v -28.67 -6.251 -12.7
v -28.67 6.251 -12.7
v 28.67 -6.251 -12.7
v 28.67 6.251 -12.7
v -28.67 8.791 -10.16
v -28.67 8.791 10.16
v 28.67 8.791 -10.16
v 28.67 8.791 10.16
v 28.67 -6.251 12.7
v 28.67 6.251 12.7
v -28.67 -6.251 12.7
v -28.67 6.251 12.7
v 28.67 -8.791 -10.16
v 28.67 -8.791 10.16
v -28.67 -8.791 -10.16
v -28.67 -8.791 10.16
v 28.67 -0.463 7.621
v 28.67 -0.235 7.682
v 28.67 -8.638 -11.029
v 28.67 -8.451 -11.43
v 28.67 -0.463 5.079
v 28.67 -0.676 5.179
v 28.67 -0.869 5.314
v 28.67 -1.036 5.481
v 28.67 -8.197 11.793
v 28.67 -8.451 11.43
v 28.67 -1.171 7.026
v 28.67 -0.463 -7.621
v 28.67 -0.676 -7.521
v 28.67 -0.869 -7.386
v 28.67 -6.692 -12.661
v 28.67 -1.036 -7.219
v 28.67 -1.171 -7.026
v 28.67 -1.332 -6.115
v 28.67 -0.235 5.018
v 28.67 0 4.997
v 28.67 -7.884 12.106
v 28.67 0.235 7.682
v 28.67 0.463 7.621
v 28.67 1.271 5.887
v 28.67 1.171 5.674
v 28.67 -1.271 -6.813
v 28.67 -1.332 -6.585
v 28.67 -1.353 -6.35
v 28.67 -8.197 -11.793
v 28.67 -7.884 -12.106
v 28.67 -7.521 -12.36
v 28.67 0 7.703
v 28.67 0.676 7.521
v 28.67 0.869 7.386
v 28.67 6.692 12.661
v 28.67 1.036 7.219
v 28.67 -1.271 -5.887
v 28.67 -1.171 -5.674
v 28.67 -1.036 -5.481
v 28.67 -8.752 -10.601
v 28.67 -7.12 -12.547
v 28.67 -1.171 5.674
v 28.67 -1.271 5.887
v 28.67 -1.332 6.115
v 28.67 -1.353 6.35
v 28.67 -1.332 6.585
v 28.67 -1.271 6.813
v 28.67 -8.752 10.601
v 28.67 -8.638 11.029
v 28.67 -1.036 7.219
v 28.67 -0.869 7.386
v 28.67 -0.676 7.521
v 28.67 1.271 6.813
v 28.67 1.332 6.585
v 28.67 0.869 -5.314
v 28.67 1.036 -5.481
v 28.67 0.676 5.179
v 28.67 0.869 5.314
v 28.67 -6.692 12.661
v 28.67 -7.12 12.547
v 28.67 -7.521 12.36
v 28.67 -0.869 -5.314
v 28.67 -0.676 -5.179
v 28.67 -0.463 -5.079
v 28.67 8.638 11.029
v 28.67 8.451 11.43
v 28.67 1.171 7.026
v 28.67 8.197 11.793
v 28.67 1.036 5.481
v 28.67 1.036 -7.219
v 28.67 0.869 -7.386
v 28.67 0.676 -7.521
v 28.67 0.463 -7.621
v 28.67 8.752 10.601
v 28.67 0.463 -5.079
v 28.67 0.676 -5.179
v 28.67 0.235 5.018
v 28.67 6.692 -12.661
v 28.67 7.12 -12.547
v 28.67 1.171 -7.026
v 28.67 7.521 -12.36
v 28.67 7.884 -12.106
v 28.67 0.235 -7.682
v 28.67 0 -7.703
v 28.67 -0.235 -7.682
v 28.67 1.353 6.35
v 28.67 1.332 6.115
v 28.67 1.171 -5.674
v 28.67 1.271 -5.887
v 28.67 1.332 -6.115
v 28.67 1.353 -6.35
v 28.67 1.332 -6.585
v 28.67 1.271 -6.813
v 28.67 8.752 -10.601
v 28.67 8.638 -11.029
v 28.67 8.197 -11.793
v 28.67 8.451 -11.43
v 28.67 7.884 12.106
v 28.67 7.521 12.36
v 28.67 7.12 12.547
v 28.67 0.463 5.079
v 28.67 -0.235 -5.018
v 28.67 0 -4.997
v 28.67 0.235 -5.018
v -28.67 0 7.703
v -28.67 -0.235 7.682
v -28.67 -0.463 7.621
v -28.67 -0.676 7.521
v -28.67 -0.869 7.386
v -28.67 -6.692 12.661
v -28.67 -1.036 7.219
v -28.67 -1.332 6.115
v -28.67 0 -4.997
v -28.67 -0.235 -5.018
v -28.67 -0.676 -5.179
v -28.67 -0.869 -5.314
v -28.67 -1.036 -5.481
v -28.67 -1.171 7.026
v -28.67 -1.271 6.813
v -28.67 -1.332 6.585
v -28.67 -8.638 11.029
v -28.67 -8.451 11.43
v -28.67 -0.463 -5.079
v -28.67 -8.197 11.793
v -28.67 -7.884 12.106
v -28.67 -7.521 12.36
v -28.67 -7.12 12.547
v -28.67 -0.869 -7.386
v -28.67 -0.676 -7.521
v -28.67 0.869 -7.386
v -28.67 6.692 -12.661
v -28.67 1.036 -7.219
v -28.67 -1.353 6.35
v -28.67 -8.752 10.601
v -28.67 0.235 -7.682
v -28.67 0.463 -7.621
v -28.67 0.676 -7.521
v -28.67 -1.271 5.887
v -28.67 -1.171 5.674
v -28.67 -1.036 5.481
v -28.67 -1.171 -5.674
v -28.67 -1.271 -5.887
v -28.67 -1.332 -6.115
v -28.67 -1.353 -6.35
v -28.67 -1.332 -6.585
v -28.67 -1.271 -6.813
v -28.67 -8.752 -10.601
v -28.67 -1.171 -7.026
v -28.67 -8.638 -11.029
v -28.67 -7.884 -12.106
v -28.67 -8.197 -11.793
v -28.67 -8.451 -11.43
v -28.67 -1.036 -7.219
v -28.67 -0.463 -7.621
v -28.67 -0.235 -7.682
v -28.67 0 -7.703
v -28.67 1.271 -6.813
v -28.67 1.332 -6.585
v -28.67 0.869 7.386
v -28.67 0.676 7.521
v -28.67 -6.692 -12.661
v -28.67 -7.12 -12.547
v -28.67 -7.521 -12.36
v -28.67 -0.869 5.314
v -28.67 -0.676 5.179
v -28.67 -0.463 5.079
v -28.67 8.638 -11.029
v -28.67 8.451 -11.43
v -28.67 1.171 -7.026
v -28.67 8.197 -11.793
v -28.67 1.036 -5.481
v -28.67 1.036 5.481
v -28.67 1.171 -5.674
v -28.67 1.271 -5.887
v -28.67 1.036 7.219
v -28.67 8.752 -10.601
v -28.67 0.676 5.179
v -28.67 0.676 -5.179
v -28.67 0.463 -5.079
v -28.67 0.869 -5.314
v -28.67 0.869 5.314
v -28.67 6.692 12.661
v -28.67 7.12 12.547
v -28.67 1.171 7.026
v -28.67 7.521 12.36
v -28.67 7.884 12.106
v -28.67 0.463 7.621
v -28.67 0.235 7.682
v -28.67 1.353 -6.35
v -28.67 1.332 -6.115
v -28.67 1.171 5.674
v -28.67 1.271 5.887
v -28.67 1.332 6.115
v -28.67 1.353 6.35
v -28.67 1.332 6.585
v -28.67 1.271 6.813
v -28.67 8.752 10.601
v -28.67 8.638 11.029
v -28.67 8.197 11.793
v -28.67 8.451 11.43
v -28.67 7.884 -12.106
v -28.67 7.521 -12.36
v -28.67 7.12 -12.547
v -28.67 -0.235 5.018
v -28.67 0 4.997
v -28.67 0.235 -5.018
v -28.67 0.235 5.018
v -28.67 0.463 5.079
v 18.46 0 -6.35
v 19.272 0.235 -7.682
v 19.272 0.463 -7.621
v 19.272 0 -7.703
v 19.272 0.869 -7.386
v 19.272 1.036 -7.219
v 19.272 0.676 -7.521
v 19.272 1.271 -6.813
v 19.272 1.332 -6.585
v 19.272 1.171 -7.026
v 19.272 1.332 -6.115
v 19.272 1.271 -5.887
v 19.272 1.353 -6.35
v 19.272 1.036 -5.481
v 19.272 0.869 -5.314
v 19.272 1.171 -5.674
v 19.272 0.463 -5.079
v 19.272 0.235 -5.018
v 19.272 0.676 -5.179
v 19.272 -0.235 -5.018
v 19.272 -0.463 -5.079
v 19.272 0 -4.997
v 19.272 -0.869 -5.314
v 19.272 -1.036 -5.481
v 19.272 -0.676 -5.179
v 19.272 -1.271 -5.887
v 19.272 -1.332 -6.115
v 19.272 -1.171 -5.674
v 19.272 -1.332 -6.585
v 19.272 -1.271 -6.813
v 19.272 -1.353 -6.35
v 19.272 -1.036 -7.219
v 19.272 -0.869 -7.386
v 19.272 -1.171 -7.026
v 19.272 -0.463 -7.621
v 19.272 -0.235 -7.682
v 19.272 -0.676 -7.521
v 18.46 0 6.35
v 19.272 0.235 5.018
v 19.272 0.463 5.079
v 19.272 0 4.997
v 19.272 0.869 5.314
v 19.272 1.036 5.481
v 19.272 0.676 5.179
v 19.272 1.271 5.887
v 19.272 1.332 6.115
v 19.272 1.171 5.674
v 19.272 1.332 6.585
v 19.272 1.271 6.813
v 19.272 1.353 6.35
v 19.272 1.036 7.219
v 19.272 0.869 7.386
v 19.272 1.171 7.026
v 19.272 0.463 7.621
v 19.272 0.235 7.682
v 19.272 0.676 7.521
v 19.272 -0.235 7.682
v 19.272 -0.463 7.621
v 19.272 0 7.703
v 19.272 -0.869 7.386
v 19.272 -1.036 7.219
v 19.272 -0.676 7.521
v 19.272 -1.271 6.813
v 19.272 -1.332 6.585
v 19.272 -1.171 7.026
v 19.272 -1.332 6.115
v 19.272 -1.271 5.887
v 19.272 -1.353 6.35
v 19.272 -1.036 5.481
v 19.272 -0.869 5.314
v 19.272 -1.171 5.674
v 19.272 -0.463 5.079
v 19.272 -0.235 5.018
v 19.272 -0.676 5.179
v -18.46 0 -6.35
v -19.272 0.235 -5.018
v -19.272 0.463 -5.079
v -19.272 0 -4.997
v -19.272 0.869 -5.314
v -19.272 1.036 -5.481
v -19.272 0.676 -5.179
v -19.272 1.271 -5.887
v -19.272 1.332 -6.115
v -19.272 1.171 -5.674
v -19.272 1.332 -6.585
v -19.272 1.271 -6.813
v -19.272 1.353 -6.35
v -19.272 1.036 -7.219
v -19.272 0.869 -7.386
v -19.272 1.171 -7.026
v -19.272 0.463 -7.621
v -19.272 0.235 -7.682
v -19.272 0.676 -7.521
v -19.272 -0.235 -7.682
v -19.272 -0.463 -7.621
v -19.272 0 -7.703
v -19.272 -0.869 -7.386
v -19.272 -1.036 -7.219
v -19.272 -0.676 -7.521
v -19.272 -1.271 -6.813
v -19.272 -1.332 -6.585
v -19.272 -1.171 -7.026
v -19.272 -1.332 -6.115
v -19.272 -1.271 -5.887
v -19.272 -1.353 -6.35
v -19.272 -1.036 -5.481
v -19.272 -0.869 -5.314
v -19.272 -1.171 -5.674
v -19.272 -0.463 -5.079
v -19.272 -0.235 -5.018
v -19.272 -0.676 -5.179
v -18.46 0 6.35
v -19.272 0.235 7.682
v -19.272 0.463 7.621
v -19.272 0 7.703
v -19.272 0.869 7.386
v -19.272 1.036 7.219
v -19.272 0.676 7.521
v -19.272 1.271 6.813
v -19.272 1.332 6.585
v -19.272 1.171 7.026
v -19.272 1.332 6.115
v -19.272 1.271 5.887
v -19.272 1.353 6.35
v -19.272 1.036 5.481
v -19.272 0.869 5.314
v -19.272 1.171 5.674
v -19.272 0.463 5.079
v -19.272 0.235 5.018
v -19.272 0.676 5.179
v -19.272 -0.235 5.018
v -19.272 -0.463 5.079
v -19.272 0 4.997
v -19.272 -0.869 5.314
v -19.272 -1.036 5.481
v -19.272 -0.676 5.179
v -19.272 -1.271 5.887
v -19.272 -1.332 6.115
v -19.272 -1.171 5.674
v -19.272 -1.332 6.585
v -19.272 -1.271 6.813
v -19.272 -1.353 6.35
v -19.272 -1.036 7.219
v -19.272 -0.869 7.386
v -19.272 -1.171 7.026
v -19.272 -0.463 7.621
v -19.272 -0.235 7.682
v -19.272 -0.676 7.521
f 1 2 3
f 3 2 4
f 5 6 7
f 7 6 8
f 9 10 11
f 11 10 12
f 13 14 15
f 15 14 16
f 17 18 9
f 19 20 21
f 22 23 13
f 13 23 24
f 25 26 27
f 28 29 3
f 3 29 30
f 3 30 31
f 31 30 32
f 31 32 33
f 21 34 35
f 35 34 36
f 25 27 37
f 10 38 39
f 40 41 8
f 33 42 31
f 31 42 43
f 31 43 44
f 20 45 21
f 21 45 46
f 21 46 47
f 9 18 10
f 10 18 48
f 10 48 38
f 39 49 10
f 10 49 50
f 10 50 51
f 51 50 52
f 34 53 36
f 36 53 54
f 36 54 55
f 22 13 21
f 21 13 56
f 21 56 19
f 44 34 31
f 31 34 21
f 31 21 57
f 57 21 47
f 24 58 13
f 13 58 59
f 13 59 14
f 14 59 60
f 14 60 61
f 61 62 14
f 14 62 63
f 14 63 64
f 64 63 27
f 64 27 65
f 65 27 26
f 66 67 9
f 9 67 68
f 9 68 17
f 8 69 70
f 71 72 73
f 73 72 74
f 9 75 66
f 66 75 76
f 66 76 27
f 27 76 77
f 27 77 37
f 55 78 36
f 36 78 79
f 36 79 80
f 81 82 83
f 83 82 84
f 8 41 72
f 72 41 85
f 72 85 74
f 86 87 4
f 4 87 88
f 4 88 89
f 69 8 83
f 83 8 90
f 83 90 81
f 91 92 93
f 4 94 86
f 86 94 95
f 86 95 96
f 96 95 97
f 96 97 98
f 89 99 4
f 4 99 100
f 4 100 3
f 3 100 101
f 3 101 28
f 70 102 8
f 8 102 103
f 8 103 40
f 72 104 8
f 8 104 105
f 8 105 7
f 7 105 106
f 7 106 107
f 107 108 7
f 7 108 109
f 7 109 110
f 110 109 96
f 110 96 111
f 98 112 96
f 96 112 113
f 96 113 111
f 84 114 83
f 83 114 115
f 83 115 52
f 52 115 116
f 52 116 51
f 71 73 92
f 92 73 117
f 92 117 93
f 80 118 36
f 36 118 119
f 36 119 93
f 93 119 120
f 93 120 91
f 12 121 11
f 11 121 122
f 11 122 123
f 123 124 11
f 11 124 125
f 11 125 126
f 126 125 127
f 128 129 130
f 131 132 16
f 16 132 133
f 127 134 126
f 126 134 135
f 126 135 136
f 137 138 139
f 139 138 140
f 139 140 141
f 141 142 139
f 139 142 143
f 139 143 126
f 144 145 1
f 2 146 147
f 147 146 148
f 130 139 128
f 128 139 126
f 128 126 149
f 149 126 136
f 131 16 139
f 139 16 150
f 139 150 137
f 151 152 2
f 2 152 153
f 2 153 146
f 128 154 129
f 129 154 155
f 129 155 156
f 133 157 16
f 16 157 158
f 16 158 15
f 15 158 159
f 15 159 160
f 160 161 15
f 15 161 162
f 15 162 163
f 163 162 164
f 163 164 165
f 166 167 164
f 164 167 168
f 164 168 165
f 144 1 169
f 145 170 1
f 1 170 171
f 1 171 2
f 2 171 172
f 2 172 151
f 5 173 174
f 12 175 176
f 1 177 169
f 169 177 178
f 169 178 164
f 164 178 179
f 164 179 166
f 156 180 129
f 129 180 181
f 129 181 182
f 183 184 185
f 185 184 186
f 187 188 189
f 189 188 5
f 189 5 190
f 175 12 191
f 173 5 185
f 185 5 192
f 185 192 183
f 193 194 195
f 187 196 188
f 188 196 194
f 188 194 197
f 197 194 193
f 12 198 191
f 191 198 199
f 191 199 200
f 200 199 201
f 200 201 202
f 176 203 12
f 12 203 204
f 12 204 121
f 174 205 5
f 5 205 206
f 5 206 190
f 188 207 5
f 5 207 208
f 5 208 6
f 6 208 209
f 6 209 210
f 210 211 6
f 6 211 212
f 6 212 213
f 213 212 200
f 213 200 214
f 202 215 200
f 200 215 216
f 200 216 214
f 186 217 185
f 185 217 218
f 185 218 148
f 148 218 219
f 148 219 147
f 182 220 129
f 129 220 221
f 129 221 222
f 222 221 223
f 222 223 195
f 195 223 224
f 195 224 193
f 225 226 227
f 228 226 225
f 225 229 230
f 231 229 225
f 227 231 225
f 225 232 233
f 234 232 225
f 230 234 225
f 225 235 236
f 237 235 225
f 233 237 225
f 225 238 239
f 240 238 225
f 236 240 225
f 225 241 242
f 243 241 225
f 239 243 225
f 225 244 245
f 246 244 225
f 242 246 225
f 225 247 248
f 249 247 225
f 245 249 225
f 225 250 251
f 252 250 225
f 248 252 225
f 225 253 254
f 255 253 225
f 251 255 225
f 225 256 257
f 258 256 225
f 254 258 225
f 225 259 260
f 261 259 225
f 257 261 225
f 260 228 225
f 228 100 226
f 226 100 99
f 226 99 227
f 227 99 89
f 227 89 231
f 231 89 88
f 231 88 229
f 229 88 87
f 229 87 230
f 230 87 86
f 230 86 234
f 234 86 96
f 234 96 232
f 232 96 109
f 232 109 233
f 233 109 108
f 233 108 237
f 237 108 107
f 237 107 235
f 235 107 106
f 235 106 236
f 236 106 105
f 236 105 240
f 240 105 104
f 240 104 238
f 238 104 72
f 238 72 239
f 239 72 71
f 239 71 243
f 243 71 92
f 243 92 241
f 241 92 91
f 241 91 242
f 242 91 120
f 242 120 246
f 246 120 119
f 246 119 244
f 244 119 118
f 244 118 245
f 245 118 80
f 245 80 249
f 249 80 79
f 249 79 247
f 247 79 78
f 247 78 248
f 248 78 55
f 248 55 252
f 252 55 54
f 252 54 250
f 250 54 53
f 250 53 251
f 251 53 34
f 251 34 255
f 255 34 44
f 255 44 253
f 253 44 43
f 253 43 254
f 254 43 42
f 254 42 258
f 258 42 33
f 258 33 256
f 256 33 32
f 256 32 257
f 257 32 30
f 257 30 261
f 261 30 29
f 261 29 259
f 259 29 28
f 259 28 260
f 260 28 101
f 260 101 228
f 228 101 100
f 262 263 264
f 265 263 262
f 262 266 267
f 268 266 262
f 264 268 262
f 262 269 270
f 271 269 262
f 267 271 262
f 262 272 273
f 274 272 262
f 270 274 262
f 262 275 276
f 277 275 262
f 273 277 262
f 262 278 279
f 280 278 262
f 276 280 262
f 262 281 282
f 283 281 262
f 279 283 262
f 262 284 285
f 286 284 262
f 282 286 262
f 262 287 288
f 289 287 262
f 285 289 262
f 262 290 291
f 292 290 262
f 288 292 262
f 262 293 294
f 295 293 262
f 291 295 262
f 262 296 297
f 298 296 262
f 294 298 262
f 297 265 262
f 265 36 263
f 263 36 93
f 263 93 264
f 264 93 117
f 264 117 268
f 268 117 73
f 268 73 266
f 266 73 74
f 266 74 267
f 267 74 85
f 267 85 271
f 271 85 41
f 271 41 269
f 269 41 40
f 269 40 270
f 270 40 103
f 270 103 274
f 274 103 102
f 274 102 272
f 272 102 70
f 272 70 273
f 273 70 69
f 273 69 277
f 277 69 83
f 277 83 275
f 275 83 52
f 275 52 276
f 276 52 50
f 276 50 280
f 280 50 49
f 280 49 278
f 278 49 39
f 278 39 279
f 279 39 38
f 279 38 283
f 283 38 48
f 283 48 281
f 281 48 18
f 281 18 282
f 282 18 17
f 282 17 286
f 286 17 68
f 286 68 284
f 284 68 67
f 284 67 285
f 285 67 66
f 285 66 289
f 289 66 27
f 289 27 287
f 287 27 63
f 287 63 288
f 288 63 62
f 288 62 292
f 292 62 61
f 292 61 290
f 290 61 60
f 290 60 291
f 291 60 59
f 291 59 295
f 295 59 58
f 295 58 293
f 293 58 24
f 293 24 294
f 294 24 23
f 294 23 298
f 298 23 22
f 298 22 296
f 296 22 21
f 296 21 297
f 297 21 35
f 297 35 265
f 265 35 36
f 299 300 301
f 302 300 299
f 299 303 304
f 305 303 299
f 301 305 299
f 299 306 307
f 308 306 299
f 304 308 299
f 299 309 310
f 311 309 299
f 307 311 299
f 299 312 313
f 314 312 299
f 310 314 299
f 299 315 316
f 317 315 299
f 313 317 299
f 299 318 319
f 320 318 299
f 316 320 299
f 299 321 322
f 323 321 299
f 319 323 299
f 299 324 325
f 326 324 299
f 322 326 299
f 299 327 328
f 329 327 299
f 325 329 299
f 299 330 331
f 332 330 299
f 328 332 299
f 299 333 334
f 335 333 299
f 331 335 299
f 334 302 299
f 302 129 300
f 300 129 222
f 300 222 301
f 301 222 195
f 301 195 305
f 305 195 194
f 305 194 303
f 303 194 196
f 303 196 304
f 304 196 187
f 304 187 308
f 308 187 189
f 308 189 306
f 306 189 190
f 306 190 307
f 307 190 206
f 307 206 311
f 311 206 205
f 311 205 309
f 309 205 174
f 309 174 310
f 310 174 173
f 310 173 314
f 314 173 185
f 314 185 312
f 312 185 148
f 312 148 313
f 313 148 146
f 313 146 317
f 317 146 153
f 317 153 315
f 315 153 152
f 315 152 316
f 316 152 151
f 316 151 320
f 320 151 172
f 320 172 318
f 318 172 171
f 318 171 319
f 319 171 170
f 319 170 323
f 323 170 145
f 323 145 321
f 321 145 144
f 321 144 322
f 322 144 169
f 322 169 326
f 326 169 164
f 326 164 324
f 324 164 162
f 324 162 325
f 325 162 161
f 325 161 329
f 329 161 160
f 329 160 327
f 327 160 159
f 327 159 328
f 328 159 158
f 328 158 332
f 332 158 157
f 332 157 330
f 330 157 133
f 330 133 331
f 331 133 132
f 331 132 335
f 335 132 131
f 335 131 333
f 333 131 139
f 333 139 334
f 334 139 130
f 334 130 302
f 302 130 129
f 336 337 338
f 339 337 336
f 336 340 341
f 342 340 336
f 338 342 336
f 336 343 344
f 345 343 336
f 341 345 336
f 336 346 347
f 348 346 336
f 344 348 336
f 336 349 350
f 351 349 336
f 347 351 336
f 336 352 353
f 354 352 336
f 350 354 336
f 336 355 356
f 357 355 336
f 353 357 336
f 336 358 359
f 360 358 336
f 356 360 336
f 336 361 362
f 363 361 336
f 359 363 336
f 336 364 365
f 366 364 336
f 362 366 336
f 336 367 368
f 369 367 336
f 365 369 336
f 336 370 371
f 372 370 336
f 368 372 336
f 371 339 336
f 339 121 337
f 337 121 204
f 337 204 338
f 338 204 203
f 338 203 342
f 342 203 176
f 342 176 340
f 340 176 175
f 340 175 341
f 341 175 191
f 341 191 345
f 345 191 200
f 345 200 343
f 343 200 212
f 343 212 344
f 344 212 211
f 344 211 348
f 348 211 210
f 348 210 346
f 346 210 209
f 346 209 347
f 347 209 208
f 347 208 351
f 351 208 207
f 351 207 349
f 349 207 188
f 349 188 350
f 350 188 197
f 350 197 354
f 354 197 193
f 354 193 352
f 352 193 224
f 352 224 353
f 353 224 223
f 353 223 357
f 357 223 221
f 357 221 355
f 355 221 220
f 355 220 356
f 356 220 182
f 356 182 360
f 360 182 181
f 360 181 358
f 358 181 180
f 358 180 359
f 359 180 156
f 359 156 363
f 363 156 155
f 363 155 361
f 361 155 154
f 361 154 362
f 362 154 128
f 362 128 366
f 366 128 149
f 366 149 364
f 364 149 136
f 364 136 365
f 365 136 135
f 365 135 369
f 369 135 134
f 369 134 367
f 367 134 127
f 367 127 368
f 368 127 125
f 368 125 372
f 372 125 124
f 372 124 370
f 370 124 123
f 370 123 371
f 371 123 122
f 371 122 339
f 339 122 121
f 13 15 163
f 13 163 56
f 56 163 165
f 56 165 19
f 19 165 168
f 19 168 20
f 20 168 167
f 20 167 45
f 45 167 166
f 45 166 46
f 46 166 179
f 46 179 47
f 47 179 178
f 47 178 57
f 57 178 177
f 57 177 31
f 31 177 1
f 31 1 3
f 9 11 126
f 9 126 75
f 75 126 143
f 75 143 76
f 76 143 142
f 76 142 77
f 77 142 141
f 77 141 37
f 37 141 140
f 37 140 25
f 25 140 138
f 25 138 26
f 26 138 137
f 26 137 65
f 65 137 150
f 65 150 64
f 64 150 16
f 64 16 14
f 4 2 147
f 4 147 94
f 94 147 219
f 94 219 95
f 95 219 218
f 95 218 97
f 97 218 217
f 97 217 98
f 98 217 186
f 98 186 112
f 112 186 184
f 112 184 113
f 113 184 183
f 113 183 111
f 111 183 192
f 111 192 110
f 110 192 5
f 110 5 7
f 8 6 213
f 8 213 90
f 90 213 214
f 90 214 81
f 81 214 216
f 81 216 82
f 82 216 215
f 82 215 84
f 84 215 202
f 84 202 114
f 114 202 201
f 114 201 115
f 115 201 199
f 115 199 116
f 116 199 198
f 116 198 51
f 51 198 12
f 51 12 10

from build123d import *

# Parameters (mm, degrees)
SKETCH1_W                      = 25.4
SKETCH1_H                      = 17.582007
BOSS_EXTRUDE1_DEPTH            = 28.67025
F_6_32_TAPPED_HOLE1_AT_2_COUNT = 2
F_6_32_TAPPED_HOLE1_AT_2_PITCH = 12.7
FILLET1_R                      = 2.54


with BuildPart() as part:
    # Sketch1 → Boss-Extrude1 (new, symmetric)
    with BuildSketch(Plane(origin=(0, 0, 0), x_dir=(0, 0, -1), z_dir=(1, 0, 0))):
        Rectangle(SKETCH1_W, SKETCH1_H)
    extrude(amount=BOSS_EXTRUDE1_DEPTH, both=True)

    # Sketch3 → #6-32 Tapped Hole1 (revolve, cut)
    with BuildSketch(Plane(origin=(28.67025, 0, 6.35), x_dir=(0, 0, -1), z_dir=(0, 1, 0))):
        Polygon((0, 0), (0, 10.21069403), (1.35255, 9.398), (1.35255, 0), align=None)
    f_6_32_tapped_hole1 = revolve(axis=Axis((35.02025, 0, 6.35), (-1, 0, 0)), mode=Mode.SUBTRACT)

    # #6-32 Tapped Hole1 at 2: #6-32 Tapped Hole1 ×2
    with Locations(*[(0, 0, -i * F_6_32_TAPPED_HOLE1_AT_2_PITCH) for i in range(1, F_6_32_TAPPED_HOLE1_AT_2_COUNT)]):
        add(f_6_32_tapped_hole1, mode=Mode.SUBTRACT)

    # Mirror1: #6-32 Tapped Hole1 across plane
    add(f_6_32_tapped_hole1.mirror(Plane(origin=(0, 0, 0), x_dir=(0, 0, 1), z_dir=(1, 0, 0))), mode=Mode.SUBTRACT)

    # Mirror1 copy 1 sketch → Mirror1 copy 1 (revolve, cut)
    with BuildSketch(Plane(origin=(-28.67025, 0, -6.35), x_dir=(0, 0, -1), z_dir=(0, 1, 0))):
        Polygon((0, 0), (0, -10.21069403), (1.35255, -9.398), (1.35255, 0), align=None)
    revolve(axis=Axis((-35.02025, 0, -6.35), (-1, 0, 0)), mode=Mode.SUBTRACT)

    # Fillet1
    fillet1_edges = [part.edges().sort_by_distance(p)[0] for p in [
        (0, -8.7910035, -12.7),
        (0, -8.7910035, 12.7),
        (0, 8.7910035, 12.7),
        (0, 8.7910035, -12.7),
    ]]
    fillet(fillet1_edges, radius=FILLET1_R)


solid = part.part
